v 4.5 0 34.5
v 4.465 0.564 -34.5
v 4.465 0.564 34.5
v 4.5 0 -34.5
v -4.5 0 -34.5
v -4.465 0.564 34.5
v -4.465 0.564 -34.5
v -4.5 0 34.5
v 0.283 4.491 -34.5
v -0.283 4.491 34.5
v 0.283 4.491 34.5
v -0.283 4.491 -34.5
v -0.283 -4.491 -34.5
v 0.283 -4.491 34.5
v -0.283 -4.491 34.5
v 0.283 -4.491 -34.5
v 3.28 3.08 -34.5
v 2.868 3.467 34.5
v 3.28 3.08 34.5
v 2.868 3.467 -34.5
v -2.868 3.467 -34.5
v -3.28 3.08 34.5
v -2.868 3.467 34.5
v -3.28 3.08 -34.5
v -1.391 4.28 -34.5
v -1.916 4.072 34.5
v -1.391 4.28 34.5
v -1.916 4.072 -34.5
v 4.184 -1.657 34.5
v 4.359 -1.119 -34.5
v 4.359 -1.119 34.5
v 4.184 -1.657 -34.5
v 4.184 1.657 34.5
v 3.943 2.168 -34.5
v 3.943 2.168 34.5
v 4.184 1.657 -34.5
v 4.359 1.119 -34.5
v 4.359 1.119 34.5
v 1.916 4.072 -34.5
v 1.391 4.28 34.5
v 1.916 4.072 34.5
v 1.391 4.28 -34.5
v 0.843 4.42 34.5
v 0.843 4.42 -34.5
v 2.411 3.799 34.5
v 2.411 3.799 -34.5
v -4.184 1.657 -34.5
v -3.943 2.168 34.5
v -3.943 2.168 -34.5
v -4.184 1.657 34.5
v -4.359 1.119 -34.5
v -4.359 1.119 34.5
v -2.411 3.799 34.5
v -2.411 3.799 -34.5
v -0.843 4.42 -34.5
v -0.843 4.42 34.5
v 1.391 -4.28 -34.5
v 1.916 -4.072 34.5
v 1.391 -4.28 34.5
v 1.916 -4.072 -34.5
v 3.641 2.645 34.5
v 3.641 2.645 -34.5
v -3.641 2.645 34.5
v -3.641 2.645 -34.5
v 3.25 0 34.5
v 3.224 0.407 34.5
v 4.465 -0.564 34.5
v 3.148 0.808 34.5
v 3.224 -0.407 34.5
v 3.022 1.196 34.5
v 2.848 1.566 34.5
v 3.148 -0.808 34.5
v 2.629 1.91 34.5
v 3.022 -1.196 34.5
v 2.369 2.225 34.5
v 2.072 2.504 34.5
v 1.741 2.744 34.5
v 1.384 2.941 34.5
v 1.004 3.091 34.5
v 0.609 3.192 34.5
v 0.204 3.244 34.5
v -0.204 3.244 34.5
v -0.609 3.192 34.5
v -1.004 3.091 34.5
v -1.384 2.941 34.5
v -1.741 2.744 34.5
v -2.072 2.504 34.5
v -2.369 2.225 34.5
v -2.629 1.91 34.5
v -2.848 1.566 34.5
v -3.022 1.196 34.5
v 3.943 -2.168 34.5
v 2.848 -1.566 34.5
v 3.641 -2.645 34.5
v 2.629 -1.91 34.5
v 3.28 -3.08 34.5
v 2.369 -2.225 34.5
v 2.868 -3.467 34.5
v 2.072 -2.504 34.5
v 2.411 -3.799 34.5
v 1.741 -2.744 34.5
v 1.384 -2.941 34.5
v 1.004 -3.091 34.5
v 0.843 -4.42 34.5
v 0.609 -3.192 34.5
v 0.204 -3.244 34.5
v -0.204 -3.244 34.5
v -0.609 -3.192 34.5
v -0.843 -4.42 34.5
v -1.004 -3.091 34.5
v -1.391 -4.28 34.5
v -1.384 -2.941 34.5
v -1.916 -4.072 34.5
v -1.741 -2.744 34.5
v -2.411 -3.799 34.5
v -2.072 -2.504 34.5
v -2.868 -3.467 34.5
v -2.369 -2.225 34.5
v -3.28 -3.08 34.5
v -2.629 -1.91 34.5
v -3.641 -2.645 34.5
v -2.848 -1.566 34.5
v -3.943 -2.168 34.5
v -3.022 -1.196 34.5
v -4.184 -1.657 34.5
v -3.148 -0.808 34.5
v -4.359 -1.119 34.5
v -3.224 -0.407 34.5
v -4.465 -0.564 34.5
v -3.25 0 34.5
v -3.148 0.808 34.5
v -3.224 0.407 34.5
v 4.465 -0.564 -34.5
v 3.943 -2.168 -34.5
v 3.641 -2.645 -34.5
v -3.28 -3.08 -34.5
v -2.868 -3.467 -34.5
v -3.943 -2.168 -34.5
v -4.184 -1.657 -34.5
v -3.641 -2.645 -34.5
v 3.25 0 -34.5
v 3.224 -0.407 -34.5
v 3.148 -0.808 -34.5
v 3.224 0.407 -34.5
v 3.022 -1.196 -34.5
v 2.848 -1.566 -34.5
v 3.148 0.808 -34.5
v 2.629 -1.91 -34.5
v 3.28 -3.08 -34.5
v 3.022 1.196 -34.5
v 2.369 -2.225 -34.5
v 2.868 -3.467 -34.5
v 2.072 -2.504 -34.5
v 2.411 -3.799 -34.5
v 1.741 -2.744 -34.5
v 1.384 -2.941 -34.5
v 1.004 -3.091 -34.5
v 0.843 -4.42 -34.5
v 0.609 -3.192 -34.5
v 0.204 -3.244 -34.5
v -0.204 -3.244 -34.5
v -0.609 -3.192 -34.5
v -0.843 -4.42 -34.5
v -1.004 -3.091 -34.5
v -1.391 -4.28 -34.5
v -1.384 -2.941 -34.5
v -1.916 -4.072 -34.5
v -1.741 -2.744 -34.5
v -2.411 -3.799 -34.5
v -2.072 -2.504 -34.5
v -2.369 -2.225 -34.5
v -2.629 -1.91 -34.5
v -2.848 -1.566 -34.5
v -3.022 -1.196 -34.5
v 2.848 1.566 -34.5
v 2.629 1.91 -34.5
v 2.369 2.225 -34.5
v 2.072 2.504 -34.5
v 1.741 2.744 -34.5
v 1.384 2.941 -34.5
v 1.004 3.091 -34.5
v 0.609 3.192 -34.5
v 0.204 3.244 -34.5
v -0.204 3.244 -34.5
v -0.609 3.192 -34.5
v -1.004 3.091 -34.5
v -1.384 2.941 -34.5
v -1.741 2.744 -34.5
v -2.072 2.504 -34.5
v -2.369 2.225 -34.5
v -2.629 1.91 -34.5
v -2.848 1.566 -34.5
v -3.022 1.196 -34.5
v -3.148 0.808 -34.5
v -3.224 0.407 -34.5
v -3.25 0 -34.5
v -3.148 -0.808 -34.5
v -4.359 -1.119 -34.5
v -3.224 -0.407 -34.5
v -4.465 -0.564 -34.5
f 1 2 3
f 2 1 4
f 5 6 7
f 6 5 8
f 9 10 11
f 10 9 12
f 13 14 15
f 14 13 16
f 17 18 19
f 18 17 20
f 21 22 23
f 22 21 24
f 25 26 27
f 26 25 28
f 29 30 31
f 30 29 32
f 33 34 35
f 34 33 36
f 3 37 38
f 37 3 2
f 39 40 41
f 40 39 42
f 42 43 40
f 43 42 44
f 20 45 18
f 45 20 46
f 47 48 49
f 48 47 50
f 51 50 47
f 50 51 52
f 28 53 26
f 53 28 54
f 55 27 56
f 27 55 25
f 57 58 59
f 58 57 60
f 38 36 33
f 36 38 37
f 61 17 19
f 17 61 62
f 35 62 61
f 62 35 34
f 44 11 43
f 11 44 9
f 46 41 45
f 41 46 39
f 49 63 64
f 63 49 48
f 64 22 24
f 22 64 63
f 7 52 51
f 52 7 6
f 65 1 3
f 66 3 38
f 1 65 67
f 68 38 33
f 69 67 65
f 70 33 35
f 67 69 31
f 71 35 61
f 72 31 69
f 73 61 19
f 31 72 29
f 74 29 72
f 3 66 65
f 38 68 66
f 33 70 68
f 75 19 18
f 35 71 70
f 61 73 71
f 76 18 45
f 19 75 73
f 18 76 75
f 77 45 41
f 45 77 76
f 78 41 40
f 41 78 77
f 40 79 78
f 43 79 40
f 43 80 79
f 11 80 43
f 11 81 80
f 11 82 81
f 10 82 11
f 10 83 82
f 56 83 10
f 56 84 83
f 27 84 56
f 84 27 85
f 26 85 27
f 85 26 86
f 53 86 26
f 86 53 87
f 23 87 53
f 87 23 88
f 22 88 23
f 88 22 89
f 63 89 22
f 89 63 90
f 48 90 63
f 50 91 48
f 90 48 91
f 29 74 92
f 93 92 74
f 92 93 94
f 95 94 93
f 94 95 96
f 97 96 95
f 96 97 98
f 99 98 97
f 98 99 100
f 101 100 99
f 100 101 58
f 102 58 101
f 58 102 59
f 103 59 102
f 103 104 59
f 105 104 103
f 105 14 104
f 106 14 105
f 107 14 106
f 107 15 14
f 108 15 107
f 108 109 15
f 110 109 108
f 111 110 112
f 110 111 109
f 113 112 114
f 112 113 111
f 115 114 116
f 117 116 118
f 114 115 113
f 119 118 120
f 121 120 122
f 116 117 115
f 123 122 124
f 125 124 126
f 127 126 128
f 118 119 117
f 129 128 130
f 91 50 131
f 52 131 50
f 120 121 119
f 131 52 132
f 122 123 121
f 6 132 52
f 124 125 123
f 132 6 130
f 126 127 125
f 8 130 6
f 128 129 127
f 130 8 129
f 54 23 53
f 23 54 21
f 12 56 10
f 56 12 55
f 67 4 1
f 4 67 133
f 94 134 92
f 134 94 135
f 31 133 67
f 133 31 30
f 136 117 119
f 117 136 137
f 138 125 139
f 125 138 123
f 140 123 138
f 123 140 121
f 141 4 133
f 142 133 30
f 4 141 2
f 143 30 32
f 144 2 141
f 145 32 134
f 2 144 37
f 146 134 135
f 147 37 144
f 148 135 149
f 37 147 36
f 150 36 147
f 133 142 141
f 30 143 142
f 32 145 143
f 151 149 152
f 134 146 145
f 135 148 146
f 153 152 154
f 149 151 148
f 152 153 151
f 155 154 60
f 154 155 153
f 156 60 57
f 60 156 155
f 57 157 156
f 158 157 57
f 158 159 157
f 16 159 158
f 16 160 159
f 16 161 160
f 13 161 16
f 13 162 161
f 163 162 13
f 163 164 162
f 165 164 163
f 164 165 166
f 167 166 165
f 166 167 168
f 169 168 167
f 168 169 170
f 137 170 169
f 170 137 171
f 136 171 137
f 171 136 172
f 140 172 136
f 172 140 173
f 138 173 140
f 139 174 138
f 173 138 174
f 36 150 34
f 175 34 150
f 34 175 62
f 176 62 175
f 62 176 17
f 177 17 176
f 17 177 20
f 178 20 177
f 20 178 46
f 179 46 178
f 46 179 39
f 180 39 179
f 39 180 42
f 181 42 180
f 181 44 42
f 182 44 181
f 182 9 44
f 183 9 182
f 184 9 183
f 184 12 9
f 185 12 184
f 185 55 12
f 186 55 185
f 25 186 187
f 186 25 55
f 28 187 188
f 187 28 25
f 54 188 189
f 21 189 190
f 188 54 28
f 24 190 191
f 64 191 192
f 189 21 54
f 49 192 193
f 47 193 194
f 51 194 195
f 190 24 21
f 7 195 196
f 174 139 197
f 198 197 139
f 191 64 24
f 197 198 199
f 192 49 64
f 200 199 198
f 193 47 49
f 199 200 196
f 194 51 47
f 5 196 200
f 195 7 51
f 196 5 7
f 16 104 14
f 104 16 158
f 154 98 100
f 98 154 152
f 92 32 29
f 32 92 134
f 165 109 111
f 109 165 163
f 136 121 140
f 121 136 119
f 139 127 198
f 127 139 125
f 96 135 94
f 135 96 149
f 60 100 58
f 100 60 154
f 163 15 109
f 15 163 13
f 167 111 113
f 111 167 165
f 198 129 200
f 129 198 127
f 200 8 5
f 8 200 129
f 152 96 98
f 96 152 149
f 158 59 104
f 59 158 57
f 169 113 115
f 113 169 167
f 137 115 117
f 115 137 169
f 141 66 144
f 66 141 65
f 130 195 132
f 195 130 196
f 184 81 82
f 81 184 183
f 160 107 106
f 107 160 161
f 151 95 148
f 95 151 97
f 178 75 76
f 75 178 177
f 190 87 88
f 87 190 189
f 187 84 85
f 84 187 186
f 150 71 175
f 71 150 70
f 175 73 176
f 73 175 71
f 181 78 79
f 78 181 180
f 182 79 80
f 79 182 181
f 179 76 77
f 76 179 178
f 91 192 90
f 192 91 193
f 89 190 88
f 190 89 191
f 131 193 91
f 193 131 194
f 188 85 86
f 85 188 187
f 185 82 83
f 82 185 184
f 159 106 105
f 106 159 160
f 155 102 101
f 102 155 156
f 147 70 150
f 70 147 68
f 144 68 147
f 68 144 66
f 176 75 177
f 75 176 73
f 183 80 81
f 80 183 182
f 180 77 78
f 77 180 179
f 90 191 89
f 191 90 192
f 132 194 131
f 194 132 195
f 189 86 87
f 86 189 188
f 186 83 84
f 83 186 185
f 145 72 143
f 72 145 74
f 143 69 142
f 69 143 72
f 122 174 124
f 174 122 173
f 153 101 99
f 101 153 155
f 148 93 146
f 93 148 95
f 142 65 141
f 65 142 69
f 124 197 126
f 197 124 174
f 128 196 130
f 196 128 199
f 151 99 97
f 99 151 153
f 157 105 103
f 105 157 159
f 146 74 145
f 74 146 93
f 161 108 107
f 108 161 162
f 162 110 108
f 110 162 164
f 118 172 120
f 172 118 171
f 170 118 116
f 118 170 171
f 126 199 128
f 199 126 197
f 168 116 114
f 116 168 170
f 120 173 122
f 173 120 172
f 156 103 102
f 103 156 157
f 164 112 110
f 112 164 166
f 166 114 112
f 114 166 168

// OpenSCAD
$fn = 50;


difference() {
	union() {
		translate(v = [0, 0, -34.5000000000]) {
			cylinder(h = 69, r = 4.5000000000);
		}
	}
	union() {
		translate(v = [0, 0, -100.0000000000]) {
			cylinder(h = 200, r = 3.2500000000);
		}
	}
}
